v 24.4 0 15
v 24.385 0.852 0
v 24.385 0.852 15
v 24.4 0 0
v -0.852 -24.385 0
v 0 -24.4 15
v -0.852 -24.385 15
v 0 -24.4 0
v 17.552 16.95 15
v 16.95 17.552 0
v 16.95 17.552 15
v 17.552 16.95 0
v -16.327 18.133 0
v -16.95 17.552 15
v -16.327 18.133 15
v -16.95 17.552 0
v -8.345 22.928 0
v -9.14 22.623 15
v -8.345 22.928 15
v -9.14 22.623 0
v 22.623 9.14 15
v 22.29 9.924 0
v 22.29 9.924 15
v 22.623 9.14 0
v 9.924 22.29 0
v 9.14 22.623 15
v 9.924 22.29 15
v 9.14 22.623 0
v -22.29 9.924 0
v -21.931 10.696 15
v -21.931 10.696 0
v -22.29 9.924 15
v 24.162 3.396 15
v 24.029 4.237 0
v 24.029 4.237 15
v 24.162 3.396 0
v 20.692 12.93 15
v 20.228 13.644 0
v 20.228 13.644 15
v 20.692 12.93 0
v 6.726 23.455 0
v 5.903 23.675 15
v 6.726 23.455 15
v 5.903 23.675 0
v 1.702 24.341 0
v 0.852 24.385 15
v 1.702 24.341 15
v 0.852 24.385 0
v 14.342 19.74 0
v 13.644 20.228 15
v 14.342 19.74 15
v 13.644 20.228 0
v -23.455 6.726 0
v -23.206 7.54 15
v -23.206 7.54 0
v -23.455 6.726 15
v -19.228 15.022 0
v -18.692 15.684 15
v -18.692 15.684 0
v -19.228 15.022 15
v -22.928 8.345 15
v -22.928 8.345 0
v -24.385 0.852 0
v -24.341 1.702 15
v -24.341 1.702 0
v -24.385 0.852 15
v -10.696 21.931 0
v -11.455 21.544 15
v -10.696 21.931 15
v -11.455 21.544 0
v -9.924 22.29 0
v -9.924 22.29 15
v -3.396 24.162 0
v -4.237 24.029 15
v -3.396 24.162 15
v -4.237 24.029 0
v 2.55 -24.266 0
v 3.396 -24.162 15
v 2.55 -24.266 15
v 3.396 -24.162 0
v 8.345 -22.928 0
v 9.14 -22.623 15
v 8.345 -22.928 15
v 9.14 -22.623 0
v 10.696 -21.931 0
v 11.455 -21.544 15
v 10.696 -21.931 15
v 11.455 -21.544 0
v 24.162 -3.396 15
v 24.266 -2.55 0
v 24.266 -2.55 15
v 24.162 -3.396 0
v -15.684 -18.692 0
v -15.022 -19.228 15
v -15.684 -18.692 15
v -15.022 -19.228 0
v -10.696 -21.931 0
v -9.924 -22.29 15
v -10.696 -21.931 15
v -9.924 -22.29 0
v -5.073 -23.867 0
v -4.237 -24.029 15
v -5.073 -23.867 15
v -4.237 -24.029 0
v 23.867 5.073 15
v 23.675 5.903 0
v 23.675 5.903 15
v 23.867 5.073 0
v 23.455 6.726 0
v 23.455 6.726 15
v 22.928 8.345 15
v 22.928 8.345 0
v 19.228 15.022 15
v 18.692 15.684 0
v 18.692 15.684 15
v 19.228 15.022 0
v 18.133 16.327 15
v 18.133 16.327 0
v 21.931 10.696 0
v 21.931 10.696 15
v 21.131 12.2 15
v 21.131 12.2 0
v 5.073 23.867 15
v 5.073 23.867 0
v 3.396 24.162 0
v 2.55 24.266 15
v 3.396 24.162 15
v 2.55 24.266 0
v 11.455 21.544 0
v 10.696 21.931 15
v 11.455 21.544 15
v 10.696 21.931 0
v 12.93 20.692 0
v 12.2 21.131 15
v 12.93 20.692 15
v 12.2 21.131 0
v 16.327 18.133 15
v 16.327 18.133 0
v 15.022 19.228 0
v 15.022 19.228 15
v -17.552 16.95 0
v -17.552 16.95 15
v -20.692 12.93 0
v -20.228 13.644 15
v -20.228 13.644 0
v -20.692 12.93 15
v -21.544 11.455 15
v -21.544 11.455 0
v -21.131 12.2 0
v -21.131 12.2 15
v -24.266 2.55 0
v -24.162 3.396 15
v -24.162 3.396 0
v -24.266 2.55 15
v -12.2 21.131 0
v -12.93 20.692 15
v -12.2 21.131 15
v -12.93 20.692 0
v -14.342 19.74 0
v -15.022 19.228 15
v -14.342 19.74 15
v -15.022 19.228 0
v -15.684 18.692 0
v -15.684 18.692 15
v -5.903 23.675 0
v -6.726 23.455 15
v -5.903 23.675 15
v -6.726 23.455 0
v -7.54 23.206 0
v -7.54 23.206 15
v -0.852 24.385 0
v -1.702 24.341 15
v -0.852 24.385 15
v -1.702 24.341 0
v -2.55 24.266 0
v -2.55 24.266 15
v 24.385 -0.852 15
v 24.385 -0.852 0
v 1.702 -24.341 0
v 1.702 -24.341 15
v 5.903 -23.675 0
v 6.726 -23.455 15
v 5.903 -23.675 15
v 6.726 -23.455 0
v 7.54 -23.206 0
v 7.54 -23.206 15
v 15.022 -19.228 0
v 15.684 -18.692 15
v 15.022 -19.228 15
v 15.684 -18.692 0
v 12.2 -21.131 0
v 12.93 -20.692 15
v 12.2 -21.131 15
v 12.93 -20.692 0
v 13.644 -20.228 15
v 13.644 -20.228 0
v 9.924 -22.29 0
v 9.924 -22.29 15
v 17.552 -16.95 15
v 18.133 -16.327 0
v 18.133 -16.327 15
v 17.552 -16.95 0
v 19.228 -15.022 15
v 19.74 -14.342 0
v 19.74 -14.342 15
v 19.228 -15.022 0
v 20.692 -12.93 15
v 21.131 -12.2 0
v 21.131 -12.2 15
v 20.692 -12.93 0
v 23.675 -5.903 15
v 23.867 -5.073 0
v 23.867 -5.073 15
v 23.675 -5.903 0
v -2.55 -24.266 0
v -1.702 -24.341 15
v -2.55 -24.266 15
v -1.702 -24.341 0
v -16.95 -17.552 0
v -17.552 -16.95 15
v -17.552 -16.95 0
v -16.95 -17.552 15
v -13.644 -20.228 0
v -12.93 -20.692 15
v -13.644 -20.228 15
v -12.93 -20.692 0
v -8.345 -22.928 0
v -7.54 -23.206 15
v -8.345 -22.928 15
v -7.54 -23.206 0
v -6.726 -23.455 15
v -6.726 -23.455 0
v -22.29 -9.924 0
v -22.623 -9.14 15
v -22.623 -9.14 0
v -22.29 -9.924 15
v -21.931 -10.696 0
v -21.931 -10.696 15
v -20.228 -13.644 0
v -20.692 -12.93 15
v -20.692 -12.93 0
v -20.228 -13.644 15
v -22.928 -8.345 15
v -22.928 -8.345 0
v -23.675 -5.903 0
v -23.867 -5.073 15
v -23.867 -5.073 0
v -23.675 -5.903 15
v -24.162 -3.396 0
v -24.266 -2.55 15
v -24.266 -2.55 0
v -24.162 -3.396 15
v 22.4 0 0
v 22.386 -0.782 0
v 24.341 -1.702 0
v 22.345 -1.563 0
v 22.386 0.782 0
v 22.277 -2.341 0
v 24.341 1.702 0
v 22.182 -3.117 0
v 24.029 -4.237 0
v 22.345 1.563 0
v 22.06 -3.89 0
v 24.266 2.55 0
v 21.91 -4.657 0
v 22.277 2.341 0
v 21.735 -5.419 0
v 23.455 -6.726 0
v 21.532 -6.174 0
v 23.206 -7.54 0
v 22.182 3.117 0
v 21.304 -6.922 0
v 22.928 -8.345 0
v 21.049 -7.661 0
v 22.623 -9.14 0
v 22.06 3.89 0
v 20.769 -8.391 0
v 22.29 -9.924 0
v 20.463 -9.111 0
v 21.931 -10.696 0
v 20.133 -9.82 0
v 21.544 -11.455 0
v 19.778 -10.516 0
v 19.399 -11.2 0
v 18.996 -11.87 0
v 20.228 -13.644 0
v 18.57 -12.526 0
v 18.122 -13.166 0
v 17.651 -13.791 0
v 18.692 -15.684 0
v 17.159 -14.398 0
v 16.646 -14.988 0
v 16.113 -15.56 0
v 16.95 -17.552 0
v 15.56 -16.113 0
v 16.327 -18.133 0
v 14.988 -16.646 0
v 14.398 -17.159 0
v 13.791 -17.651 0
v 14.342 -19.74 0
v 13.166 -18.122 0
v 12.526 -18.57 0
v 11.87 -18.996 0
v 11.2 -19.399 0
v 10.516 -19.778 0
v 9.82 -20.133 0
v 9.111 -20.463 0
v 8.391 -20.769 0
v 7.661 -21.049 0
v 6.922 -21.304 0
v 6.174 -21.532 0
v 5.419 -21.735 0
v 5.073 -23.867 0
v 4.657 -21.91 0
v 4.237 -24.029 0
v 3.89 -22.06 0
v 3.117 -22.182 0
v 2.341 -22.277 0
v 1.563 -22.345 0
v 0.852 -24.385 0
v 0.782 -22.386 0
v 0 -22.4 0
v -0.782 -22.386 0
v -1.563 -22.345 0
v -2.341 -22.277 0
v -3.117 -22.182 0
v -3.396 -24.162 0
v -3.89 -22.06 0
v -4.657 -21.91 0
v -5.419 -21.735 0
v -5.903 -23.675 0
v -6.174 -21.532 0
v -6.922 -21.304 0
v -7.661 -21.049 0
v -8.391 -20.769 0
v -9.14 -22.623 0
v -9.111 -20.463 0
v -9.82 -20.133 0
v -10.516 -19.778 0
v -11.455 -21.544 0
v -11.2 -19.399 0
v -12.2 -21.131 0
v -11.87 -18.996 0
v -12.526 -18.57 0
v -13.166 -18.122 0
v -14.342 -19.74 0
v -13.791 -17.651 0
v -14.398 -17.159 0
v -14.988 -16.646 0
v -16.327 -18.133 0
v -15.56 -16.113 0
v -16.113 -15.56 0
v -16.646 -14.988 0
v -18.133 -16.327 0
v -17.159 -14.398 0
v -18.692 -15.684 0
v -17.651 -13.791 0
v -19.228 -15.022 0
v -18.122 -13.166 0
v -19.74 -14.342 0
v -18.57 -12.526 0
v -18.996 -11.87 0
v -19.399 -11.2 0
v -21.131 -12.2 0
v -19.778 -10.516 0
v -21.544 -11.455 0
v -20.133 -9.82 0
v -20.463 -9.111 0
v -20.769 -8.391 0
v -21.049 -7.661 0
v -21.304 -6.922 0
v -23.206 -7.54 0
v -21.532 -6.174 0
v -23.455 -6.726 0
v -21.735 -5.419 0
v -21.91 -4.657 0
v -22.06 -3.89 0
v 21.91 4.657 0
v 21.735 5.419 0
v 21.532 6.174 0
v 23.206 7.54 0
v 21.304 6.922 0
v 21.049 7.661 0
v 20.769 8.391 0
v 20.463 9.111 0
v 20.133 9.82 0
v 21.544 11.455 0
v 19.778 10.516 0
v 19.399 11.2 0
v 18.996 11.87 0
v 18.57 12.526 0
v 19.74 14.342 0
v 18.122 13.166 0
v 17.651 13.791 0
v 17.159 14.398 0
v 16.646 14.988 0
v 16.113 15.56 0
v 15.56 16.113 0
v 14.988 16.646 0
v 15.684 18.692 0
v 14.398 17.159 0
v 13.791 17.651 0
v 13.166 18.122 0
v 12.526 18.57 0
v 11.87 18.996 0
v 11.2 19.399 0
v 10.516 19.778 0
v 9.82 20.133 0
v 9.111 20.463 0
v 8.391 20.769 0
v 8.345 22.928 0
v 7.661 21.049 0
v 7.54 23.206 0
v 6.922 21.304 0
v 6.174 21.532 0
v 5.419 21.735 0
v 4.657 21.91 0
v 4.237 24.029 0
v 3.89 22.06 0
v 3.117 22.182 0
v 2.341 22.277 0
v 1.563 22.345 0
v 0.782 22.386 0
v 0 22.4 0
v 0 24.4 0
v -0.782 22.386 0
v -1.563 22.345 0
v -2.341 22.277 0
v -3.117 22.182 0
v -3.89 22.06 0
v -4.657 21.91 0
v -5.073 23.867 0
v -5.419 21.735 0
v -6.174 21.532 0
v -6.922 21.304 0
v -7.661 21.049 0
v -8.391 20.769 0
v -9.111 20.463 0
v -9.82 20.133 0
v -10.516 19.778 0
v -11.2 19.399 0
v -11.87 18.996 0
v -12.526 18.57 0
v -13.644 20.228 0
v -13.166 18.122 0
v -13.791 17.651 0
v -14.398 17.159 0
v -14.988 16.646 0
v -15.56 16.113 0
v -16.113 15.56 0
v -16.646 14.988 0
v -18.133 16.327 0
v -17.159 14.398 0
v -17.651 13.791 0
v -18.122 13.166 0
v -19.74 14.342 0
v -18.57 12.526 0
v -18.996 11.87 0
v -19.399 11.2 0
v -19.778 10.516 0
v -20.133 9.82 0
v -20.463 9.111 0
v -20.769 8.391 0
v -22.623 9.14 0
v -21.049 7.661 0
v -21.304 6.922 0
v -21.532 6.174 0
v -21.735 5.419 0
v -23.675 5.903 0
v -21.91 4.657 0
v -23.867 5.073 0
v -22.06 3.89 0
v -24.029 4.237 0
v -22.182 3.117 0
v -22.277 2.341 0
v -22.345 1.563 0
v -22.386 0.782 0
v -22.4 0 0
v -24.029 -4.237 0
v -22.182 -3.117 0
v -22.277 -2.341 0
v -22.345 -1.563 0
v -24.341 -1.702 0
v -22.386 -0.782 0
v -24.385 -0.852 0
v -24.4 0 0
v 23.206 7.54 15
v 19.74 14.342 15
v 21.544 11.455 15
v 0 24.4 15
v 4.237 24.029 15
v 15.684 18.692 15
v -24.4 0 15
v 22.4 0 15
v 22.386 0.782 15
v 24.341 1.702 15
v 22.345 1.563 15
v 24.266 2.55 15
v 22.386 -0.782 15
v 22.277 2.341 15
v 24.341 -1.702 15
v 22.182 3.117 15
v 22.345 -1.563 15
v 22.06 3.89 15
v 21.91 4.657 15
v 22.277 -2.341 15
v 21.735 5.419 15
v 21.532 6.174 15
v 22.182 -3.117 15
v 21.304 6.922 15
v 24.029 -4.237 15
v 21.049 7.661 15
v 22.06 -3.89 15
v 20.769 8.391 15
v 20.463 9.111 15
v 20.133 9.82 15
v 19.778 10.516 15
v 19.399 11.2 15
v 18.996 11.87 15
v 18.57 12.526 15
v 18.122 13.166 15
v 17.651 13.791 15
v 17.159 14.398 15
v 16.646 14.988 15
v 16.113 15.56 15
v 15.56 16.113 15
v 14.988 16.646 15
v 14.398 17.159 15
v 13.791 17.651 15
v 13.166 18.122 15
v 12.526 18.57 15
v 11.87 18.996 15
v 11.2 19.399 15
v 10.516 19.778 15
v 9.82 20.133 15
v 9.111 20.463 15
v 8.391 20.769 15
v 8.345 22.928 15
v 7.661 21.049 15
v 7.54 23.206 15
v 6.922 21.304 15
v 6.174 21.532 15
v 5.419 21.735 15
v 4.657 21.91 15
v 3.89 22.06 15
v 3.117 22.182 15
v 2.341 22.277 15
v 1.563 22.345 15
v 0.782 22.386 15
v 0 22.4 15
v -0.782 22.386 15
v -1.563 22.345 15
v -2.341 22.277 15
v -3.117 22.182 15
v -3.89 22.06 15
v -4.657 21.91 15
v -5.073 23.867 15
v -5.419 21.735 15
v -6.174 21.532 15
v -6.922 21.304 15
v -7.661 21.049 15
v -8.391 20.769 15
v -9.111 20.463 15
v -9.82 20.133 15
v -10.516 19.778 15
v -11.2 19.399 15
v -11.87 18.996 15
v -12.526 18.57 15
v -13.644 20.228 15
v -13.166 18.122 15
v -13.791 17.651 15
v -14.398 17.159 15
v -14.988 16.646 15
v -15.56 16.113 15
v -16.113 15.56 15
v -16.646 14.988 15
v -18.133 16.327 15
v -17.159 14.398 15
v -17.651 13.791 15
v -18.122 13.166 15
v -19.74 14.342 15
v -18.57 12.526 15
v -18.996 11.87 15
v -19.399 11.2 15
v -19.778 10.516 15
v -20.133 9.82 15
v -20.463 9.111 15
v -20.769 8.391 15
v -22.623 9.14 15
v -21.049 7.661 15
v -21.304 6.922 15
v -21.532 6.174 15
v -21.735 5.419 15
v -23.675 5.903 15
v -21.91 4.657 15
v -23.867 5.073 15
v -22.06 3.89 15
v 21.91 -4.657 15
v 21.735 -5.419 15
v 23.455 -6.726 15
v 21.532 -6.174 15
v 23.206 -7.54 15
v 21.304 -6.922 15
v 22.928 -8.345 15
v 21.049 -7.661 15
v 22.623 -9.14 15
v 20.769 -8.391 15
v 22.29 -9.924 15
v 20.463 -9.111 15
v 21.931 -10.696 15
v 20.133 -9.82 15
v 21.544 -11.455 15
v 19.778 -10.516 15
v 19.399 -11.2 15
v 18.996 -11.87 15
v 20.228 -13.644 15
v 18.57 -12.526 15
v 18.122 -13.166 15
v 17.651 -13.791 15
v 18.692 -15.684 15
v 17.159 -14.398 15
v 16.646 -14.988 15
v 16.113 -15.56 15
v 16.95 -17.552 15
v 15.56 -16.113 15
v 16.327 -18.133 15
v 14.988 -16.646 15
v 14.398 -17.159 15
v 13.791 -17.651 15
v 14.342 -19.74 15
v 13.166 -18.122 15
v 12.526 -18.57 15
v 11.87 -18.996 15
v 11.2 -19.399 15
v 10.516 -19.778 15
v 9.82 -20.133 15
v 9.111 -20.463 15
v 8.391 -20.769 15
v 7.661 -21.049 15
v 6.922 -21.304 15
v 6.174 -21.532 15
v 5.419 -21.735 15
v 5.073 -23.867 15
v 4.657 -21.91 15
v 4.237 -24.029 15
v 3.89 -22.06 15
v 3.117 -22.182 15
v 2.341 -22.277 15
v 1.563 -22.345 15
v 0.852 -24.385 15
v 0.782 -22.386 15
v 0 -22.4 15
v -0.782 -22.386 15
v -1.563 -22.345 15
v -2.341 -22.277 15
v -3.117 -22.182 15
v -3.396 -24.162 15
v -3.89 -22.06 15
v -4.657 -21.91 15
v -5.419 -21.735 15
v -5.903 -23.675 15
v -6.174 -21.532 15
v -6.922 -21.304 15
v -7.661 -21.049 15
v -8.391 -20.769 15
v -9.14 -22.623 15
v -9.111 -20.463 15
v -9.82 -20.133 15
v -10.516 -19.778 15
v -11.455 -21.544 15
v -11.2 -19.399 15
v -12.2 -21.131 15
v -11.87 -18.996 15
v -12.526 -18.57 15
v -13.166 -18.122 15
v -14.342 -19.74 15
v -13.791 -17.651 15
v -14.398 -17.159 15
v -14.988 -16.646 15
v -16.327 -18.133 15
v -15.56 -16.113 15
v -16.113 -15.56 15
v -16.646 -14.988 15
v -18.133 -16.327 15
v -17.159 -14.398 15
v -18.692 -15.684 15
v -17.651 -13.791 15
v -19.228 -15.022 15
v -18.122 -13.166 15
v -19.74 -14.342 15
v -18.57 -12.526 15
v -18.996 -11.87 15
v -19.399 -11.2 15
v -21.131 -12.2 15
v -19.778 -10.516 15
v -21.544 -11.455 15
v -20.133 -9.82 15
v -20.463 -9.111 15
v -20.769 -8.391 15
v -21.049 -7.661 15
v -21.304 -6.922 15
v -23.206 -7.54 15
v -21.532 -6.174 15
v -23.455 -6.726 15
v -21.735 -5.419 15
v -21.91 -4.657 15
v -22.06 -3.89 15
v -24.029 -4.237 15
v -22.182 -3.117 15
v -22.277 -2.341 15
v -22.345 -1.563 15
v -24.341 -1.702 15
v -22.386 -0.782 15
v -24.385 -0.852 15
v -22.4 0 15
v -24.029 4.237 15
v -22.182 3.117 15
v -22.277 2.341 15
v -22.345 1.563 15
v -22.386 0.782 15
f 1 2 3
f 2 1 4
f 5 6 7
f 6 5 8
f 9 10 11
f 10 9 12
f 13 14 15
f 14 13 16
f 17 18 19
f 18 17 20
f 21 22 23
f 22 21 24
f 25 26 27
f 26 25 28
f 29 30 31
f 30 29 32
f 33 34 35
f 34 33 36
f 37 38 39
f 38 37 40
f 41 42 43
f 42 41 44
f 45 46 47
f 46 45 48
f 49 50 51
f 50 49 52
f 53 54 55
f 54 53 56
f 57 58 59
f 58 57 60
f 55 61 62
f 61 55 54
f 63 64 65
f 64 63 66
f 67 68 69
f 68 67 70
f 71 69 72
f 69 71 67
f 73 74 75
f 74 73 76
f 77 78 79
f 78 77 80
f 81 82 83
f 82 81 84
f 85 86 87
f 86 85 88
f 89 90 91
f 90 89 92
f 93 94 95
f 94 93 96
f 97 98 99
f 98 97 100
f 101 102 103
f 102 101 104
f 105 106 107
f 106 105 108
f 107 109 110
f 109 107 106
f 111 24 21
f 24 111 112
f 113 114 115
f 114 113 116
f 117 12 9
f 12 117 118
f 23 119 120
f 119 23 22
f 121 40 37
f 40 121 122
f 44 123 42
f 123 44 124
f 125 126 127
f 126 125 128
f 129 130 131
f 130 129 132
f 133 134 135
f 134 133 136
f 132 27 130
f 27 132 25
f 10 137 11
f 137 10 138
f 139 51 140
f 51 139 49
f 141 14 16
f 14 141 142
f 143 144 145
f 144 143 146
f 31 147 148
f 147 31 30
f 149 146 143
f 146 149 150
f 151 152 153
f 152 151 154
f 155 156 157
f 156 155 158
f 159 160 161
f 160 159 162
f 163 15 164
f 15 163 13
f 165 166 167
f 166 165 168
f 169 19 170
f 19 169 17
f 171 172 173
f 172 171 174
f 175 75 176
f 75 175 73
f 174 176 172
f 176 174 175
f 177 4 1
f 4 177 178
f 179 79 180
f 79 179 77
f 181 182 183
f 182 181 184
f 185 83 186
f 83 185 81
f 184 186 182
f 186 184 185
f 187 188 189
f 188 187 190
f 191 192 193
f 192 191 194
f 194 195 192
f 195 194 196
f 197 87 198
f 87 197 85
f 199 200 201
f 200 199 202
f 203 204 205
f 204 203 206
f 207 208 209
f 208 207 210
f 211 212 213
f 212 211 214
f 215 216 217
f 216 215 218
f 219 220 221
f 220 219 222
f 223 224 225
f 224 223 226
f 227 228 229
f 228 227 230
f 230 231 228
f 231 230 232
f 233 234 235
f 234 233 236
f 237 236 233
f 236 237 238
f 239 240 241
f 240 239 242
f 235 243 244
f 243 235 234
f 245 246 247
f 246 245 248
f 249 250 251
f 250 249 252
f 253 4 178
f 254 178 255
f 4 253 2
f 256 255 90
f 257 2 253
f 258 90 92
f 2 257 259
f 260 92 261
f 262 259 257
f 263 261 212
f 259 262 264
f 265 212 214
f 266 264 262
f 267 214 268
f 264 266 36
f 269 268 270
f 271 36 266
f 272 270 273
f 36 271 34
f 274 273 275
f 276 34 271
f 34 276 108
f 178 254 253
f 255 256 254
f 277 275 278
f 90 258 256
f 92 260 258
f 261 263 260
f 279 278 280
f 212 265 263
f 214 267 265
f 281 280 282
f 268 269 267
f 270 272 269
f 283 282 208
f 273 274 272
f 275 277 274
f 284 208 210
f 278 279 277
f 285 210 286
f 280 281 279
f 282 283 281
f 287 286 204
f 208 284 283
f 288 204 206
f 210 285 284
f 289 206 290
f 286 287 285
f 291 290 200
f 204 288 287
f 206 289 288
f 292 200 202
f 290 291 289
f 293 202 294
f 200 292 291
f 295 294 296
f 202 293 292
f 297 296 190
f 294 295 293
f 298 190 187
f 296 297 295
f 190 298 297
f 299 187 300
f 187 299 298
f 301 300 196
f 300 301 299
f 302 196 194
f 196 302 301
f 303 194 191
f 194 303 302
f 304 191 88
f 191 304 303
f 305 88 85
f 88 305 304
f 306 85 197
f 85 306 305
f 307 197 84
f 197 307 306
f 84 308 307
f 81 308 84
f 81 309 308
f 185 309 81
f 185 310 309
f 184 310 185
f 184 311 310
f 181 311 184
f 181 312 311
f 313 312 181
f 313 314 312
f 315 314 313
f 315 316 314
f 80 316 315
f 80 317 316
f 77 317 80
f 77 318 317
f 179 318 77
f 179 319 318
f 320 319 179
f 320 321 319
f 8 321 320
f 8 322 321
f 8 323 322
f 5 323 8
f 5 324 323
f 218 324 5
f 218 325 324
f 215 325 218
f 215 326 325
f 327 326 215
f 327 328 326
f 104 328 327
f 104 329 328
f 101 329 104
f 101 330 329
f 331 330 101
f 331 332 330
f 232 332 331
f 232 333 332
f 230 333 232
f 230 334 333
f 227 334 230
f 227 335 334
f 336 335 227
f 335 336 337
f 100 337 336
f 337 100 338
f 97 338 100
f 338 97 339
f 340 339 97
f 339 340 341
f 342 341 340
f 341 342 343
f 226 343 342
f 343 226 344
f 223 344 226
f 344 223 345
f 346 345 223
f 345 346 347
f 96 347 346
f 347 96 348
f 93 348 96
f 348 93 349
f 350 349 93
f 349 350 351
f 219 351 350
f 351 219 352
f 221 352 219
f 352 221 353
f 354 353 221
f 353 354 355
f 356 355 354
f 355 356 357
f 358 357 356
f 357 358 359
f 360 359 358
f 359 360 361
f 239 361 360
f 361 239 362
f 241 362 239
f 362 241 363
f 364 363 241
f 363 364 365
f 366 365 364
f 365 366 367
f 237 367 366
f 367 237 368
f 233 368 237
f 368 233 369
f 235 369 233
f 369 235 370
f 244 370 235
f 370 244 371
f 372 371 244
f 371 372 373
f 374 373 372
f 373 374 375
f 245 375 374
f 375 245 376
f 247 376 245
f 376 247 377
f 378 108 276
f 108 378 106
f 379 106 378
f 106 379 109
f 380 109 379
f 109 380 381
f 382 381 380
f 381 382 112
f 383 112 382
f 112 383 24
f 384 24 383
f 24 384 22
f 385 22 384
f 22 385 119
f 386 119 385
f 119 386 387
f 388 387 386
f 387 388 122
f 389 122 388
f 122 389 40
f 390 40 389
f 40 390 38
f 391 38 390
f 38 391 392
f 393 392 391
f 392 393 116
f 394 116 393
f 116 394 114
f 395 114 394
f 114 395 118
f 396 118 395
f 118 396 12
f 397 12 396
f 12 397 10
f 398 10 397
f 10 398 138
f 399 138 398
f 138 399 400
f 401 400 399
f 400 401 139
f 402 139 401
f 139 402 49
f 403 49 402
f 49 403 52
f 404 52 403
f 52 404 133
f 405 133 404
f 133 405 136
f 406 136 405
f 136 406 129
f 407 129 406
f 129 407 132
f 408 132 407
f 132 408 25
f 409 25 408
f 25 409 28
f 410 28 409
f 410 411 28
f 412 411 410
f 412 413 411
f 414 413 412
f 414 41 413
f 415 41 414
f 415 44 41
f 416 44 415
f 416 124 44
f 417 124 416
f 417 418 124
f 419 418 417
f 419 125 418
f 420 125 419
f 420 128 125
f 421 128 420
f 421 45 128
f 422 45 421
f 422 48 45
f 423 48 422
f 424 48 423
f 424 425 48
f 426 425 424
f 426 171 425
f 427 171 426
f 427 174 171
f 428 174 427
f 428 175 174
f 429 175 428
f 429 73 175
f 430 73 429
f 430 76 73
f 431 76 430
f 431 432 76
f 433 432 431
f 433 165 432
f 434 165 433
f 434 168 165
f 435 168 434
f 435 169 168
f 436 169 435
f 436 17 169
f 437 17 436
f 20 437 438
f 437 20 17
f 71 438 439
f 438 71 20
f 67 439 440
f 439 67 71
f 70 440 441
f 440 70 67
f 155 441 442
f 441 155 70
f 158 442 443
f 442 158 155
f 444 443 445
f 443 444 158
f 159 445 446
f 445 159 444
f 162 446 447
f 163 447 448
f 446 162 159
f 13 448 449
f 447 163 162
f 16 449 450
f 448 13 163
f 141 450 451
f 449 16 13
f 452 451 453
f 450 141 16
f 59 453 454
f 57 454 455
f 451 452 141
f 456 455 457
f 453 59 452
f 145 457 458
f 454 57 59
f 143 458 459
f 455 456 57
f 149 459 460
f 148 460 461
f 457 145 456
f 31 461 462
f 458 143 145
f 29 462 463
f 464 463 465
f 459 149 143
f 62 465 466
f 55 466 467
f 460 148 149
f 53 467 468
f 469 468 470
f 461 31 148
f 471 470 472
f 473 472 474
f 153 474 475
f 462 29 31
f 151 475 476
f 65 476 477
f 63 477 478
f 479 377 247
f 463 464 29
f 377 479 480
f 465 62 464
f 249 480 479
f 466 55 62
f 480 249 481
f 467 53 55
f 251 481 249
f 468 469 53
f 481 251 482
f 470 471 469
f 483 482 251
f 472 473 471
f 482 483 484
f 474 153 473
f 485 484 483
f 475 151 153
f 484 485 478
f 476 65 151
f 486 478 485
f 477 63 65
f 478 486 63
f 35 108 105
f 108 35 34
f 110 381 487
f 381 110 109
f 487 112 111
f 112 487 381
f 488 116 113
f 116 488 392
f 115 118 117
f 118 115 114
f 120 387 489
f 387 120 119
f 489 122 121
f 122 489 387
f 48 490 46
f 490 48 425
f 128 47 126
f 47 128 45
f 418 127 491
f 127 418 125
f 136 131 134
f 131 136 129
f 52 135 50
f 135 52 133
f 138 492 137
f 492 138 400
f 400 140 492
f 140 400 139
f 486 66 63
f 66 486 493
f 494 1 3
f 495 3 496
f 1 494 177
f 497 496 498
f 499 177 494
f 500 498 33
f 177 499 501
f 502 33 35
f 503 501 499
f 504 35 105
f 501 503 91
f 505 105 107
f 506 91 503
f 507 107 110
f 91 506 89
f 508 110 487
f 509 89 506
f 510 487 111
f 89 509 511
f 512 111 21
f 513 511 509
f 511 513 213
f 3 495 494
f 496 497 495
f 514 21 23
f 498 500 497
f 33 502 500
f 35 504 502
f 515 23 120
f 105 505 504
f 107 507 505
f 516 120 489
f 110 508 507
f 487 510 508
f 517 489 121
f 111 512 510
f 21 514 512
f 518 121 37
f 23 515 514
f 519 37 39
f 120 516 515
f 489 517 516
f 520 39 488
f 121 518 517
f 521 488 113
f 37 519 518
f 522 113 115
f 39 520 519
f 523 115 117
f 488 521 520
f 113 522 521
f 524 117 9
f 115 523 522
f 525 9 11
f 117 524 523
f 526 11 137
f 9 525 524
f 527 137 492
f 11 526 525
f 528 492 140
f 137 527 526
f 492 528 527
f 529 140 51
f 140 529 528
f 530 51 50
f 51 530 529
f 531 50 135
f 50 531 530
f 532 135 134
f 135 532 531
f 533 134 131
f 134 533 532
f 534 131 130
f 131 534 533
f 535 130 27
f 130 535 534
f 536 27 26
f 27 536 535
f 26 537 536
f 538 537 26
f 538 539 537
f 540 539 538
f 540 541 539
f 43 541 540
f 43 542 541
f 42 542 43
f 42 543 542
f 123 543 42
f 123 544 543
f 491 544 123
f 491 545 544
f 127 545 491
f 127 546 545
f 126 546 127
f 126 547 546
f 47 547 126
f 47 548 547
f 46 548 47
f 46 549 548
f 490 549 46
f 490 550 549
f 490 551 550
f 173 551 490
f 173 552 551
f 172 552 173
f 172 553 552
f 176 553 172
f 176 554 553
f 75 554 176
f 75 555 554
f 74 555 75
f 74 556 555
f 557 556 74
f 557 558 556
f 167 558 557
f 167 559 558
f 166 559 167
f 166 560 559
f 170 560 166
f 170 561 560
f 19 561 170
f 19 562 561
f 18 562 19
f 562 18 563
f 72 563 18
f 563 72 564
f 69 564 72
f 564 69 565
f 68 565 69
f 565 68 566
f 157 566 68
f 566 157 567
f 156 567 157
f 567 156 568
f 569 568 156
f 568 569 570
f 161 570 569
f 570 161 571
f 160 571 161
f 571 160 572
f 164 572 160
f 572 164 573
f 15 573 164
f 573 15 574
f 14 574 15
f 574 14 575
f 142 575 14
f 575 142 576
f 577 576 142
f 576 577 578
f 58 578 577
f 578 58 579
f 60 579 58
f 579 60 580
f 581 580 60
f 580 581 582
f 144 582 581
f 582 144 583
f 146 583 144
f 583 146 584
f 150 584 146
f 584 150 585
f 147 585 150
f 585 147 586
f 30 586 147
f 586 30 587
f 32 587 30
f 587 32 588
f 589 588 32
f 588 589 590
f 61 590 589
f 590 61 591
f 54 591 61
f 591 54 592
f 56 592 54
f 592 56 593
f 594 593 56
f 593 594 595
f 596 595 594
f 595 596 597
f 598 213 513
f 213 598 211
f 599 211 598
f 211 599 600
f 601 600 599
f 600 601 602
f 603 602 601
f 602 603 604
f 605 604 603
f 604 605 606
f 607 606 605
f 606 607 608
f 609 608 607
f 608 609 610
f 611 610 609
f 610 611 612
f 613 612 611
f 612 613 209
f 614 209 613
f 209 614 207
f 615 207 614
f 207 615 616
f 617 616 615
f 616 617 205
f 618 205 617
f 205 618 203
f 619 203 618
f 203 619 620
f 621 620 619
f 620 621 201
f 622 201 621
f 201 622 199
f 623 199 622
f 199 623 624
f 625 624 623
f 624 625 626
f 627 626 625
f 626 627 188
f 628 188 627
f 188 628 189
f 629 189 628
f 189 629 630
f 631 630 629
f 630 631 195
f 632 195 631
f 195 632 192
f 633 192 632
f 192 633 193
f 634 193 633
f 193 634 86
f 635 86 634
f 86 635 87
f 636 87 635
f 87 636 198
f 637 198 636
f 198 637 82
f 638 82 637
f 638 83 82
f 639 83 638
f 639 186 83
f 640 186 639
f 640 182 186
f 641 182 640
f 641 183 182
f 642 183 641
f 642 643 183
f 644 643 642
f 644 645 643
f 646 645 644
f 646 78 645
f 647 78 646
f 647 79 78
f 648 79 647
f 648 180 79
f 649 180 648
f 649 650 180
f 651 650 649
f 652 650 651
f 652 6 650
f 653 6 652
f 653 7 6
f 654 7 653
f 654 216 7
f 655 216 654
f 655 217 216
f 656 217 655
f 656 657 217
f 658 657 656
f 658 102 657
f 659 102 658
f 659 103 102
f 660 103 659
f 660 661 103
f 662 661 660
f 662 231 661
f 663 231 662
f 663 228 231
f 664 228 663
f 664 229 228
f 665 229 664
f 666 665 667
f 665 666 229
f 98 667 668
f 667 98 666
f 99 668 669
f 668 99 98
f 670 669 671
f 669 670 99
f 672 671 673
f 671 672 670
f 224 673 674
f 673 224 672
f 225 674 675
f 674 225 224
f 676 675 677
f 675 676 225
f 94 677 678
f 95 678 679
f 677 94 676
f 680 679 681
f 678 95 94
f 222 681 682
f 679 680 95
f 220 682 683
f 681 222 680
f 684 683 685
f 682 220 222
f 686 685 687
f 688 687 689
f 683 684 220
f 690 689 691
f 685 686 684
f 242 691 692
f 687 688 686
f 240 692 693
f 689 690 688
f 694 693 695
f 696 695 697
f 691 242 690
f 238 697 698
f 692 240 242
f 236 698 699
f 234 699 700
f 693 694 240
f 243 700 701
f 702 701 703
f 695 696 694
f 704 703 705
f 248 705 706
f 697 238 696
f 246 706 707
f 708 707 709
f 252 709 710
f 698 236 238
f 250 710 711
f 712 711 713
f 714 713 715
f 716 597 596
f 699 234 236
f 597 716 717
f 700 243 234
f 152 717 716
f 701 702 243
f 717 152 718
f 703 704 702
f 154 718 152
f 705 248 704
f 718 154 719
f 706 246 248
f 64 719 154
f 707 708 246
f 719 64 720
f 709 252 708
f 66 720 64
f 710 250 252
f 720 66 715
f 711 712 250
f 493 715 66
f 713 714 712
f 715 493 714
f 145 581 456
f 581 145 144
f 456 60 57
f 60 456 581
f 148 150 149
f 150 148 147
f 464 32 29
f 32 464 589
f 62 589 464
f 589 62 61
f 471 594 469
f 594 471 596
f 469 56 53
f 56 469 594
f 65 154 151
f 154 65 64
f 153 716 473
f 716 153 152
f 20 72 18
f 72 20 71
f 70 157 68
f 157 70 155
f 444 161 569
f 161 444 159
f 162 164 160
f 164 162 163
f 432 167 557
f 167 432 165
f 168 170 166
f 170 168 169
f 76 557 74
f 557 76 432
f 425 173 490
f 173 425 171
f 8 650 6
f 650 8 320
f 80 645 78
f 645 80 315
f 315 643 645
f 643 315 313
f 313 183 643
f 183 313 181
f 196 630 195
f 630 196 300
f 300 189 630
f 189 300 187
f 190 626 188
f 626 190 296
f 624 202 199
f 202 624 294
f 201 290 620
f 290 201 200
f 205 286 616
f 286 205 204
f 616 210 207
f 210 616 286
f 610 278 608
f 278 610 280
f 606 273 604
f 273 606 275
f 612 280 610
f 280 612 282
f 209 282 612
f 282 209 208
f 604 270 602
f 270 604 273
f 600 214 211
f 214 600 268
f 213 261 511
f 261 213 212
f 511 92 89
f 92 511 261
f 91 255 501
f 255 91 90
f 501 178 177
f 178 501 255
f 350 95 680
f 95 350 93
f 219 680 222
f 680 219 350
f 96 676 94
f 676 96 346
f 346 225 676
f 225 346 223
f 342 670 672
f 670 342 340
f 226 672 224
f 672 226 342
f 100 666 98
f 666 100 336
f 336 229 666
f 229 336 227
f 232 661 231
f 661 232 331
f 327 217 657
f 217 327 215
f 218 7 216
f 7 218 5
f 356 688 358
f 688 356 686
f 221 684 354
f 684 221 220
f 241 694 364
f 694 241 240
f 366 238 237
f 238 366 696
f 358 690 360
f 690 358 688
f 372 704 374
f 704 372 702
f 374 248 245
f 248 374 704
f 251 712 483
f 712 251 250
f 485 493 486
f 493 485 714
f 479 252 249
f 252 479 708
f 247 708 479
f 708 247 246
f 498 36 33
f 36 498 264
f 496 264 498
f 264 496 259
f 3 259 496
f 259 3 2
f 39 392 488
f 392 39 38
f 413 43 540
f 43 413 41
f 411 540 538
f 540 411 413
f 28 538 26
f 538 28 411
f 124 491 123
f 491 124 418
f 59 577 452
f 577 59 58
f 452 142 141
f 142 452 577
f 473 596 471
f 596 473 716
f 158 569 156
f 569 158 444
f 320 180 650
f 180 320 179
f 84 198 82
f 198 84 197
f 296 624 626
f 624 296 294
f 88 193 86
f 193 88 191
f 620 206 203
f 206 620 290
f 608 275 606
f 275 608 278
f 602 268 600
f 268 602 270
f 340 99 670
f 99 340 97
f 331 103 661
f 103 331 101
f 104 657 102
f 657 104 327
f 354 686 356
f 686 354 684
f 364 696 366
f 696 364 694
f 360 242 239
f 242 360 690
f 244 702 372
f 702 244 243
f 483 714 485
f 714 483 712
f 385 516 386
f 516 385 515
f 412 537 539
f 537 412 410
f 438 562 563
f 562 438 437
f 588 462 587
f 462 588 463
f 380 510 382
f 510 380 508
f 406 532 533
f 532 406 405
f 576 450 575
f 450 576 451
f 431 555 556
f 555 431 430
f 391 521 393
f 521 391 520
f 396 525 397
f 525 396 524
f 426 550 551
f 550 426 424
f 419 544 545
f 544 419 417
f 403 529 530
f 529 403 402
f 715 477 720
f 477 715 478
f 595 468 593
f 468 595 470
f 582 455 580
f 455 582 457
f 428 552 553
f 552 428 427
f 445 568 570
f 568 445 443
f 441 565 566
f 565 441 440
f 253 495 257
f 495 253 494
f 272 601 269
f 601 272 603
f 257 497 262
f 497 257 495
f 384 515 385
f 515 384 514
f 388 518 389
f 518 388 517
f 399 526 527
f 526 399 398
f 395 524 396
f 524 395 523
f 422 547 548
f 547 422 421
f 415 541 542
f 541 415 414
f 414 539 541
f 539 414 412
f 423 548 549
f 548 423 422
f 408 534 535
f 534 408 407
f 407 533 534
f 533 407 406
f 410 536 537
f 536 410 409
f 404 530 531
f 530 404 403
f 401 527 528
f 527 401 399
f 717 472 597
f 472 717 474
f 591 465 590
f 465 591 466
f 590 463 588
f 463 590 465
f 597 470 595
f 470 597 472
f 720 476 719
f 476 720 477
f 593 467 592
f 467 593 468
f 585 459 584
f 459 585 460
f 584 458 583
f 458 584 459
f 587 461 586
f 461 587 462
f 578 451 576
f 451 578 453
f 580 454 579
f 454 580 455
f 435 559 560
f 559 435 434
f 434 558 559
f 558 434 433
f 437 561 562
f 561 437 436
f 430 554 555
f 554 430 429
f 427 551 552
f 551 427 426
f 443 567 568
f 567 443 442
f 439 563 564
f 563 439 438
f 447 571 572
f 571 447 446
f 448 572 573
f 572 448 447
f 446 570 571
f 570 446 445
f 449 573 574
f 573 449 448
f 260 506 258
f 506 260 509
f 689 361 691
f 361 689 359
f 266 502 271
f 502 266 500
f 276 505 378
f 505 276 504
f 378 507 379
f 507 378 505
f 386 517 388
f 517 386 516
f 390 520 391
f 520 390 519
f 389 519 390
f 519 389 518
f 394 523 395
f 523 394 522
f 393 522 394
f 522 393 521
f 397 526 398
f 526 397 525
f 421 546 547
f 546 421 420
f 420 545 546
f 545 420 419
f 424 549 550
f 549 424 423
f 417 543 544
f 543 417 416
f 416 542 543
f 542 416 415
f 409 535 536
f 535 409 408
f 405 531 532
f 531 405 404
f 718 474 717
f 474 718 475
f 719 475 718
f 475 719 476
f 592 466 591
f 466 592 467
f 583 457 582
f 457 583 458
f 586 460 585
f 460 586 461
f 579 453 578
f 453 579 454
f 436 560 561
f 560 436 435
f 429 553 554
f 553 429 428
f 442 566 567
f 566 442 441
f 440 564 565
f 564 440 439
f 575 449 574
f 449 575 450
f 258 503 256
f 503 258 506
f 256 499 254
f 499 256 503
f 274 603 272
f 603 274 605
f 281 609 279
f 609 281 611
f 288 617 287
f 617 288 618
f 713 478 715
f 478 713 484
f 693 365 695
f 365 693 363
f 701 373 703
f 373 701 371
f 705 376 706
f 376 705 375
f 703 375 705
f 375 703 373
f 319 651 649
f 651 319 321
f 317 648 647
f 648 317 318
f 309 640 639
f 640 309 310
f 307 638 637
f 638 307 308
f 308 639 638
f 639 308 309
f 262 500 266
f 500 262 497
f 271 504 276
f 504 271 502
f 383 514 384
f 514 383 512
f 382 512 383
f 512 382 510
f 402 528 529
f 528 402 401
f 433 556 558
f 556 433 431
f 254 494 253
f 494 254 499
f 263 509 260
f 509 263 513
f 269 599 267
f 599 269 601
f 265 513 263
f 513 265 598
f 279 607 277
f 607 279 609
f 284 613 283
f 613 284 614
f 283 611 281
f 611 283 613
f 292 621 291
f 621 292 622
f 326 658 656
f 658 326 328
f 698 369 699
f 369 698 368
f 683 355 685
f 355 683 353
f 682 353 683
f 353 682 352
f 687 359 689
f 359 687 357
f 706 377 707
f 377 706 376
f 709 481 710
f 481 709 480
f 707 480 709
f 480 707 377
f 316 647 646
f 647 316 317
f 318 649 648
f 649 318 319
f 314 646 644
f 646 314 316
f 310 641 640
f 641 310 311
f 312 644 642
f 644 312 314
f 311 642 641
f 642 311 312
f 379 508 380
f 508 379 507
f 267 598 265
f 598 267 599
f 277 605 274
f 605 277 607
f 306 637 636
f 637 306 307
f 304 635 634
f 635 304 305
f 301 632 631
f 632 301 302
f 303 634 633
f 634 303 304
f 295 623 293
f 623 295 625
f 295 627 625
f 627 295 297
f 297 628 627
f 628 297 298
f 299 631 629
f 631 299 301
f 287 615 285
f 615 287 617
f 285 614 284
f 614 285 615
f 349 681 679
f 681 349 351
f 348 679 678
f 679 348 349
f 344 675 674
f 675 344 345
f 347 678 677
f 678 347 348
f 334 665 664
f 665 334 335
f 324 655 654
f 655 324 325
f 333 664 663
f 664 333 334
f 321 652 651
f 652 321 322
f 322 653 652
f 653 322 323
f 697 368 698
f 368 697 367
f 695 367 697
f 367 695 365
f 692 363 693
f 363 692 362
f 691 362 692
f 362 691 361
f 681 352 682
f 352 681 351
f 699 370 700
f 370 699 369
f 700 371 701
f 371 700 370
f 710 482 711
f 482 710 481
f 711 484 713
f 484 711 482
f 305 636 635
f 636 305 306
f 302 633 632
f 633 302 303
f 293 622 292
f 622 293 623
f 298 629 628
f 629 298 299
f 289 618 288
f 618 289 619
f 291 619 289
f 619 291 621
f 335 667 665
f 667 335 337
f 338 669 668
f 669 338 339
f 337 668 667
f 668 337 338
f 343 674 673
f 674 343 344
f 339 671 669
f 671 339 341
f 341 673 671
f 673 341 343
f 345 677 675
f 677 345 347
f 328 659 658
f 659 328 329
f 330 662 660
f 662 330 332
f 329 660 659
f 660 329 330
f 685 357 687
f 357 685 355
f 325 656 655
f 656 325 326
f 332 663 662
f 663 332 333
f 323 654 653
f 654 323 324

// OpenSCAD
include <MCAD/units.scad>

ID = 44.8*mm;
t = 2*mm;
h = 15*mm;

difference() {
    $fn = 180;
    cylinder(d=ID+2*t, h=h);
    cylinder(d=ID, h=h);
}
